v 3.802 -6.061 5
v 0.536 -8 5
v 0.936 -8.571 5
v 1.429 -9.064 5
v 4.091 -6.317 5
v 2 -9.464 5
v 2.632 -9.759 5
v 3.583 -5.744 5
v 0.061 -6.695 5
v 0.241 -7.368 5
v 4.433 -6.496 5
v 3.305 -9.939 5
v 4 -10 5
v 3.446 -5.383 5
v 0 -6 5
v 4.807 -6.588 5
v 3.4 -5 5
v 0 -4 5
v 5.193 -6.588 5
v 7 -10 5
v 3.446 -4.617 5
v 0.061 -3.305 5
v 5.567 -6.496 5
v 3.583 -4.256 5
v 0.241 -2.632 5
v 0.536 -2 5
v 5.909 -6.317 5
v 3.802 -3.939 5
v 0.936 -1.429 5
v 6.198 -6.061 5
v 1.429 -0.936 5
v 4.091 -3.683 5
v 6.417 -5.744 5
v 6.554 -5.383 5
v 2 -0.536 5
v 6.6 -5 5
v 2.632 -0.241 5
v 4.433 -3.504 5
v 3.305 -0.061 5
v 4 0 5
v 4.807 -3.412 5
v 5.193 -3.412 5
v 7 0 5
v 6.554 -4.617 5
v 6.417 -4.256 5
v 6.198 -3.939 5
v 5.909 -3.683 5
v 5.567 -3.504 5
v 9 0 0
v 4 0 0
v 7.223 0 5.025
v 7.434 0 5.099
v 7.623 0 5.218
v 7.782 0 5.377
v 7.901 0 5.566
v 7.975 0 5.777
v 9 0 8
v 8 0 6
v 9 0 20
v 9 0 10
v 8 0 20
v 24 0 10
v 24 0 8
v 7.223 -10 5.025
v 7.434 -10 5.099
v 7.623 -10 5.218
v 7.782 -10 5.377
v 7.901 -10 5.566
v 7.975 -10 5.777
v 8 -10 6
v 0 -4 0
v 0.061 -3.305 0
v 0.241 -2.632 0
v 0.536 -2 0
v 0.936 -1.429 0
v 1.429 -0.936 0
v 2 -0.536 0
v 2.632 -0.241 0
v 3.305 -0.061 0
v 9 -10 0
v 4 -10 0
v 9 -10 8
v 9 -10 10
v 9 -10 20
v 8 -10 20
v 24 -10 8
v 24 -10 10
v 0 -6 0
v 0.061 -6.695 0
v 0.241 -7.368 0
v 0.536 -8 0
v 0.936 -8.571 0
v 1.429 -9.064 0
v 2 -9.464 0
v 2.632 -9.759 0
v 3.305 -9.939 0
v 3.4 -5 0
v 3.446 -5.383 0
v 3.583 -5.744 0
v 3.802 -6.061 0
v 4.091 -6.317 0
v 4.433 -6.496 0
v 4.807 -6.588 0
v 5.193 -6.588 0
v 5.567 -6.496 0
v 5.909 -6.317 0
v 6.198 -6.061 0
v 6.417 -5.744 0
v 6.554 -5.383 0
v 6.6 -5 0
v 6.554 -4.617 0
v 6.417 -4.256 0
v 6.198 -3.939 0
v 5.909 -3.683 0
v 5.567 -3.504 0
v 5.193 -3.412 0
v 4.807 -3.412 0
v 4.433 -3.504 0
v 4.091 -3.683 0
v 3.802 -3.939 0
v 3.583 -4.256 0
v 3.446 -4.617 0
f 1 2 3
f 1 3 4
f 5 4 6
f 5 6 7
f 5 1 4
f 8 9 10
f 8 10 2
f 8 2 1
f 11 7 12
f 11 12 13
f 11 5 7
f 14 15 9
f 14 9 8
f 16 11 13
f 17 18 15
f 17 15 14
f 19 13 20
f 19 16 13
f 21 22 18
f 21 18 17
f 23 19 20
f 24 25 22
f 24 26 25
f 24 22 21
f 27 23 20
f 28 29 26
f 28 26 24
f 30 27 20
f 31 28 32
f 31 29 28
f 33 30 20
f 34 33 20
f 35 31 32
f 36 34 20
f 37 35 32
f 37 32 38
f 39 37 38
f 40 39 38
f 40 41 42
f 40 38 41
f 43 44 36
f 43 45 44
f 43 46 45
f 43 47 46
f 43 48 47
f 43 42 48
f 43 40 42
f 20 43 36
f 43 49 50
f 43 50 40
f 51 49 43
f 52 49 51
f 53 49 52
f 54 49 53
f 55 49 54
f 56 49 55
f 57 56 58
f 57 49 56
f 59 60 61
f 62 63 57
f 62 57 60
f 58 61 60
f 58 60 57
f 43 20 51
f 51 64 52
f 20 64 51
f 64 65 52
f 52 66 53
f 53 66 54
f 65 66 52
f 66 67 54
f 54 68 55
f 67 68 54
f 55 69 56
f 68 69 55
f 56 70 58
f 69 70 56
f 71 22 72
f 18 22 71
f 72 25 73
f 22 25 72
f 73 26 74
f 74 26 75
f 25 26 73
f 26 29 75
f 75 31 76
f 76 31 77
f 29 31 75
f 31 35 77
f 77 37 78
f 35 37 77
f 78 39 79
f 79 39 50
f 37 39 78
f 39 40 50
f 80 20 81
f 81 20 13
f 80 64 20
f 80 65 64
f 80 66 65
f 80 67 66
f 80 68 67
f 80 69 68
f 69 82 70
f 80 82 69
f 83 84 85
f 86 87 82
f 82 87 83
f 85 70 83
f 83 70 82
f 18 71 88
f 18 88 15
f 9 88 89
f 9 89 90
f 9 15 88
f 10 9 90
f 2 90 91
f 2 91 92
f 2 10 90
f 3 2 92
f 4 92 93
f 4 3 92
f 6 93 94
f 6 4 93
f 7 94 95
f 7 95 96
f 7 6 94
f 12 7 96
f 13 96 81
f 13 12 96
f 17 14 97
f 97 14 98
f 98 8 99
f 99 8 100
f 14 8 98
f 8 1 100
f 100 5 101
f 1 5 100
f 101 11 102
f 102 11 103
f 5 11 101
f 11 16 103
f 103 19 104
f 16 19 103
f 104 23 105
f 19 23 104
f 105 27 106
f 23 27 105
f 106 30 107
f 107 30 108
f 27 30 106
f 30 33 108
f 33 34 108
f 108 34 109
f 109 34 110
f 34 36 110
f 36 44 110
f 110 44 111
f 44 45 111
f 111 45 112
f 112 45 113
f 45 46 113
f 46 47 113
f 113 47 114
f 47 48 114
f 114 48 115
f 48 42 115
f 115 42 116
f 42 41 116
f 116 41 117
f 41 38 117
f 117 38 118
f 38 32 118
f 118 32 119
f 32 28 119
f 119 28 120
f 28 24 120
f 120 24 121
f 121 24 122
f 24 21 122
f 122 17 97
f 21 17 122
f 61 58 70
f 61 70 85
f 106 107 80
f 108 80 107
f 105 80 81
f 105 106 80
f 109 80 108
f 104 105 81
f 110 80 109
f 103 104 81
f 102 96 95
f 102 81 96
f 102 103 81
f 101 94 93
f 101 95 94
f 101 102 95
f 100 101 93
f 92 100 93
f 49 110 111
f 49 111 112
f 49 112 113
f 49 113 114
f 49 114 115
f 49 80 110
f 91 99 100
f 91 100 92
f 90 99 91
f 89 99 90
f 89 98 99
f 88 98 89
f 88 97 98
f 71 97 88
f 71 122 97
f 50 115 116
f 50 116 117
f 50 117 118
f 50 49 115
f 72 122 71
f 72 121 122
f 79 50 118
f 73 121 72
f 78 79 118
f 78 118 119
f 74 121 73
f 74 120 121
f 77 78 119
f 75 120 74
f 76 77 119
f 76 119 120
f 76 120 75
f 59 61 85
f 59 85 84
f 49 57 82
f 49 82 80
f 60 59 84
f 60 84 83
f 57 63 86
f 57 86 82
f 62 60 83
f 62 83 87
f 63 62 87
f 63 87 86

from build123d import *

# Parameters (mm, degrees)
PAD_DEPTH    = 10
SKETCH001_R  = 1.6
POCKET_DEPTH = 5
FILLET_R     = 4
FILLET001_R  = 1


with BuildPart() as part:
    # Sketch → Pad (new body)
    with BuildSketch(Plane.XZ):
        Polygon((0, 0), (0, 5), (8, 5), (8, 20), (9, 20), (9, 10), (24, 10), (24, 8), (9, 8), (9, 0), align=None)
    extrude(amount=PAD_DEPTH)

    # Sketch001 (on Face2 of Pad) → Pocket (cut)
    with BuildSketch(Plane(origin=(0, 0, 5), x_dir=(-1, 0, 0), z_dir=(0, 0, 1))):
        with Locations((-5, 5)):
            Circle(SKETCH001_R)
    extrude(amount=-POCKET_DEPTH, mode=Mode.SUBTRACT)

    # Fillet
    fillet_edges = [part.edges().sort_by_distance(p)[0] for p in [
        (0, 0, 2.5),
        (0, -10, 2.5),
    ]]
    fillet(fillet_edges, radius=FILLET_R)

    # Fillet001
    fillet001_edges = [part.edges().sort_by_distance(p)[0] for p in [
        (8, -5, 5),
    ]]
    fillet(fillet001_edges, radius=FILLET001_R)


solid = part.part
